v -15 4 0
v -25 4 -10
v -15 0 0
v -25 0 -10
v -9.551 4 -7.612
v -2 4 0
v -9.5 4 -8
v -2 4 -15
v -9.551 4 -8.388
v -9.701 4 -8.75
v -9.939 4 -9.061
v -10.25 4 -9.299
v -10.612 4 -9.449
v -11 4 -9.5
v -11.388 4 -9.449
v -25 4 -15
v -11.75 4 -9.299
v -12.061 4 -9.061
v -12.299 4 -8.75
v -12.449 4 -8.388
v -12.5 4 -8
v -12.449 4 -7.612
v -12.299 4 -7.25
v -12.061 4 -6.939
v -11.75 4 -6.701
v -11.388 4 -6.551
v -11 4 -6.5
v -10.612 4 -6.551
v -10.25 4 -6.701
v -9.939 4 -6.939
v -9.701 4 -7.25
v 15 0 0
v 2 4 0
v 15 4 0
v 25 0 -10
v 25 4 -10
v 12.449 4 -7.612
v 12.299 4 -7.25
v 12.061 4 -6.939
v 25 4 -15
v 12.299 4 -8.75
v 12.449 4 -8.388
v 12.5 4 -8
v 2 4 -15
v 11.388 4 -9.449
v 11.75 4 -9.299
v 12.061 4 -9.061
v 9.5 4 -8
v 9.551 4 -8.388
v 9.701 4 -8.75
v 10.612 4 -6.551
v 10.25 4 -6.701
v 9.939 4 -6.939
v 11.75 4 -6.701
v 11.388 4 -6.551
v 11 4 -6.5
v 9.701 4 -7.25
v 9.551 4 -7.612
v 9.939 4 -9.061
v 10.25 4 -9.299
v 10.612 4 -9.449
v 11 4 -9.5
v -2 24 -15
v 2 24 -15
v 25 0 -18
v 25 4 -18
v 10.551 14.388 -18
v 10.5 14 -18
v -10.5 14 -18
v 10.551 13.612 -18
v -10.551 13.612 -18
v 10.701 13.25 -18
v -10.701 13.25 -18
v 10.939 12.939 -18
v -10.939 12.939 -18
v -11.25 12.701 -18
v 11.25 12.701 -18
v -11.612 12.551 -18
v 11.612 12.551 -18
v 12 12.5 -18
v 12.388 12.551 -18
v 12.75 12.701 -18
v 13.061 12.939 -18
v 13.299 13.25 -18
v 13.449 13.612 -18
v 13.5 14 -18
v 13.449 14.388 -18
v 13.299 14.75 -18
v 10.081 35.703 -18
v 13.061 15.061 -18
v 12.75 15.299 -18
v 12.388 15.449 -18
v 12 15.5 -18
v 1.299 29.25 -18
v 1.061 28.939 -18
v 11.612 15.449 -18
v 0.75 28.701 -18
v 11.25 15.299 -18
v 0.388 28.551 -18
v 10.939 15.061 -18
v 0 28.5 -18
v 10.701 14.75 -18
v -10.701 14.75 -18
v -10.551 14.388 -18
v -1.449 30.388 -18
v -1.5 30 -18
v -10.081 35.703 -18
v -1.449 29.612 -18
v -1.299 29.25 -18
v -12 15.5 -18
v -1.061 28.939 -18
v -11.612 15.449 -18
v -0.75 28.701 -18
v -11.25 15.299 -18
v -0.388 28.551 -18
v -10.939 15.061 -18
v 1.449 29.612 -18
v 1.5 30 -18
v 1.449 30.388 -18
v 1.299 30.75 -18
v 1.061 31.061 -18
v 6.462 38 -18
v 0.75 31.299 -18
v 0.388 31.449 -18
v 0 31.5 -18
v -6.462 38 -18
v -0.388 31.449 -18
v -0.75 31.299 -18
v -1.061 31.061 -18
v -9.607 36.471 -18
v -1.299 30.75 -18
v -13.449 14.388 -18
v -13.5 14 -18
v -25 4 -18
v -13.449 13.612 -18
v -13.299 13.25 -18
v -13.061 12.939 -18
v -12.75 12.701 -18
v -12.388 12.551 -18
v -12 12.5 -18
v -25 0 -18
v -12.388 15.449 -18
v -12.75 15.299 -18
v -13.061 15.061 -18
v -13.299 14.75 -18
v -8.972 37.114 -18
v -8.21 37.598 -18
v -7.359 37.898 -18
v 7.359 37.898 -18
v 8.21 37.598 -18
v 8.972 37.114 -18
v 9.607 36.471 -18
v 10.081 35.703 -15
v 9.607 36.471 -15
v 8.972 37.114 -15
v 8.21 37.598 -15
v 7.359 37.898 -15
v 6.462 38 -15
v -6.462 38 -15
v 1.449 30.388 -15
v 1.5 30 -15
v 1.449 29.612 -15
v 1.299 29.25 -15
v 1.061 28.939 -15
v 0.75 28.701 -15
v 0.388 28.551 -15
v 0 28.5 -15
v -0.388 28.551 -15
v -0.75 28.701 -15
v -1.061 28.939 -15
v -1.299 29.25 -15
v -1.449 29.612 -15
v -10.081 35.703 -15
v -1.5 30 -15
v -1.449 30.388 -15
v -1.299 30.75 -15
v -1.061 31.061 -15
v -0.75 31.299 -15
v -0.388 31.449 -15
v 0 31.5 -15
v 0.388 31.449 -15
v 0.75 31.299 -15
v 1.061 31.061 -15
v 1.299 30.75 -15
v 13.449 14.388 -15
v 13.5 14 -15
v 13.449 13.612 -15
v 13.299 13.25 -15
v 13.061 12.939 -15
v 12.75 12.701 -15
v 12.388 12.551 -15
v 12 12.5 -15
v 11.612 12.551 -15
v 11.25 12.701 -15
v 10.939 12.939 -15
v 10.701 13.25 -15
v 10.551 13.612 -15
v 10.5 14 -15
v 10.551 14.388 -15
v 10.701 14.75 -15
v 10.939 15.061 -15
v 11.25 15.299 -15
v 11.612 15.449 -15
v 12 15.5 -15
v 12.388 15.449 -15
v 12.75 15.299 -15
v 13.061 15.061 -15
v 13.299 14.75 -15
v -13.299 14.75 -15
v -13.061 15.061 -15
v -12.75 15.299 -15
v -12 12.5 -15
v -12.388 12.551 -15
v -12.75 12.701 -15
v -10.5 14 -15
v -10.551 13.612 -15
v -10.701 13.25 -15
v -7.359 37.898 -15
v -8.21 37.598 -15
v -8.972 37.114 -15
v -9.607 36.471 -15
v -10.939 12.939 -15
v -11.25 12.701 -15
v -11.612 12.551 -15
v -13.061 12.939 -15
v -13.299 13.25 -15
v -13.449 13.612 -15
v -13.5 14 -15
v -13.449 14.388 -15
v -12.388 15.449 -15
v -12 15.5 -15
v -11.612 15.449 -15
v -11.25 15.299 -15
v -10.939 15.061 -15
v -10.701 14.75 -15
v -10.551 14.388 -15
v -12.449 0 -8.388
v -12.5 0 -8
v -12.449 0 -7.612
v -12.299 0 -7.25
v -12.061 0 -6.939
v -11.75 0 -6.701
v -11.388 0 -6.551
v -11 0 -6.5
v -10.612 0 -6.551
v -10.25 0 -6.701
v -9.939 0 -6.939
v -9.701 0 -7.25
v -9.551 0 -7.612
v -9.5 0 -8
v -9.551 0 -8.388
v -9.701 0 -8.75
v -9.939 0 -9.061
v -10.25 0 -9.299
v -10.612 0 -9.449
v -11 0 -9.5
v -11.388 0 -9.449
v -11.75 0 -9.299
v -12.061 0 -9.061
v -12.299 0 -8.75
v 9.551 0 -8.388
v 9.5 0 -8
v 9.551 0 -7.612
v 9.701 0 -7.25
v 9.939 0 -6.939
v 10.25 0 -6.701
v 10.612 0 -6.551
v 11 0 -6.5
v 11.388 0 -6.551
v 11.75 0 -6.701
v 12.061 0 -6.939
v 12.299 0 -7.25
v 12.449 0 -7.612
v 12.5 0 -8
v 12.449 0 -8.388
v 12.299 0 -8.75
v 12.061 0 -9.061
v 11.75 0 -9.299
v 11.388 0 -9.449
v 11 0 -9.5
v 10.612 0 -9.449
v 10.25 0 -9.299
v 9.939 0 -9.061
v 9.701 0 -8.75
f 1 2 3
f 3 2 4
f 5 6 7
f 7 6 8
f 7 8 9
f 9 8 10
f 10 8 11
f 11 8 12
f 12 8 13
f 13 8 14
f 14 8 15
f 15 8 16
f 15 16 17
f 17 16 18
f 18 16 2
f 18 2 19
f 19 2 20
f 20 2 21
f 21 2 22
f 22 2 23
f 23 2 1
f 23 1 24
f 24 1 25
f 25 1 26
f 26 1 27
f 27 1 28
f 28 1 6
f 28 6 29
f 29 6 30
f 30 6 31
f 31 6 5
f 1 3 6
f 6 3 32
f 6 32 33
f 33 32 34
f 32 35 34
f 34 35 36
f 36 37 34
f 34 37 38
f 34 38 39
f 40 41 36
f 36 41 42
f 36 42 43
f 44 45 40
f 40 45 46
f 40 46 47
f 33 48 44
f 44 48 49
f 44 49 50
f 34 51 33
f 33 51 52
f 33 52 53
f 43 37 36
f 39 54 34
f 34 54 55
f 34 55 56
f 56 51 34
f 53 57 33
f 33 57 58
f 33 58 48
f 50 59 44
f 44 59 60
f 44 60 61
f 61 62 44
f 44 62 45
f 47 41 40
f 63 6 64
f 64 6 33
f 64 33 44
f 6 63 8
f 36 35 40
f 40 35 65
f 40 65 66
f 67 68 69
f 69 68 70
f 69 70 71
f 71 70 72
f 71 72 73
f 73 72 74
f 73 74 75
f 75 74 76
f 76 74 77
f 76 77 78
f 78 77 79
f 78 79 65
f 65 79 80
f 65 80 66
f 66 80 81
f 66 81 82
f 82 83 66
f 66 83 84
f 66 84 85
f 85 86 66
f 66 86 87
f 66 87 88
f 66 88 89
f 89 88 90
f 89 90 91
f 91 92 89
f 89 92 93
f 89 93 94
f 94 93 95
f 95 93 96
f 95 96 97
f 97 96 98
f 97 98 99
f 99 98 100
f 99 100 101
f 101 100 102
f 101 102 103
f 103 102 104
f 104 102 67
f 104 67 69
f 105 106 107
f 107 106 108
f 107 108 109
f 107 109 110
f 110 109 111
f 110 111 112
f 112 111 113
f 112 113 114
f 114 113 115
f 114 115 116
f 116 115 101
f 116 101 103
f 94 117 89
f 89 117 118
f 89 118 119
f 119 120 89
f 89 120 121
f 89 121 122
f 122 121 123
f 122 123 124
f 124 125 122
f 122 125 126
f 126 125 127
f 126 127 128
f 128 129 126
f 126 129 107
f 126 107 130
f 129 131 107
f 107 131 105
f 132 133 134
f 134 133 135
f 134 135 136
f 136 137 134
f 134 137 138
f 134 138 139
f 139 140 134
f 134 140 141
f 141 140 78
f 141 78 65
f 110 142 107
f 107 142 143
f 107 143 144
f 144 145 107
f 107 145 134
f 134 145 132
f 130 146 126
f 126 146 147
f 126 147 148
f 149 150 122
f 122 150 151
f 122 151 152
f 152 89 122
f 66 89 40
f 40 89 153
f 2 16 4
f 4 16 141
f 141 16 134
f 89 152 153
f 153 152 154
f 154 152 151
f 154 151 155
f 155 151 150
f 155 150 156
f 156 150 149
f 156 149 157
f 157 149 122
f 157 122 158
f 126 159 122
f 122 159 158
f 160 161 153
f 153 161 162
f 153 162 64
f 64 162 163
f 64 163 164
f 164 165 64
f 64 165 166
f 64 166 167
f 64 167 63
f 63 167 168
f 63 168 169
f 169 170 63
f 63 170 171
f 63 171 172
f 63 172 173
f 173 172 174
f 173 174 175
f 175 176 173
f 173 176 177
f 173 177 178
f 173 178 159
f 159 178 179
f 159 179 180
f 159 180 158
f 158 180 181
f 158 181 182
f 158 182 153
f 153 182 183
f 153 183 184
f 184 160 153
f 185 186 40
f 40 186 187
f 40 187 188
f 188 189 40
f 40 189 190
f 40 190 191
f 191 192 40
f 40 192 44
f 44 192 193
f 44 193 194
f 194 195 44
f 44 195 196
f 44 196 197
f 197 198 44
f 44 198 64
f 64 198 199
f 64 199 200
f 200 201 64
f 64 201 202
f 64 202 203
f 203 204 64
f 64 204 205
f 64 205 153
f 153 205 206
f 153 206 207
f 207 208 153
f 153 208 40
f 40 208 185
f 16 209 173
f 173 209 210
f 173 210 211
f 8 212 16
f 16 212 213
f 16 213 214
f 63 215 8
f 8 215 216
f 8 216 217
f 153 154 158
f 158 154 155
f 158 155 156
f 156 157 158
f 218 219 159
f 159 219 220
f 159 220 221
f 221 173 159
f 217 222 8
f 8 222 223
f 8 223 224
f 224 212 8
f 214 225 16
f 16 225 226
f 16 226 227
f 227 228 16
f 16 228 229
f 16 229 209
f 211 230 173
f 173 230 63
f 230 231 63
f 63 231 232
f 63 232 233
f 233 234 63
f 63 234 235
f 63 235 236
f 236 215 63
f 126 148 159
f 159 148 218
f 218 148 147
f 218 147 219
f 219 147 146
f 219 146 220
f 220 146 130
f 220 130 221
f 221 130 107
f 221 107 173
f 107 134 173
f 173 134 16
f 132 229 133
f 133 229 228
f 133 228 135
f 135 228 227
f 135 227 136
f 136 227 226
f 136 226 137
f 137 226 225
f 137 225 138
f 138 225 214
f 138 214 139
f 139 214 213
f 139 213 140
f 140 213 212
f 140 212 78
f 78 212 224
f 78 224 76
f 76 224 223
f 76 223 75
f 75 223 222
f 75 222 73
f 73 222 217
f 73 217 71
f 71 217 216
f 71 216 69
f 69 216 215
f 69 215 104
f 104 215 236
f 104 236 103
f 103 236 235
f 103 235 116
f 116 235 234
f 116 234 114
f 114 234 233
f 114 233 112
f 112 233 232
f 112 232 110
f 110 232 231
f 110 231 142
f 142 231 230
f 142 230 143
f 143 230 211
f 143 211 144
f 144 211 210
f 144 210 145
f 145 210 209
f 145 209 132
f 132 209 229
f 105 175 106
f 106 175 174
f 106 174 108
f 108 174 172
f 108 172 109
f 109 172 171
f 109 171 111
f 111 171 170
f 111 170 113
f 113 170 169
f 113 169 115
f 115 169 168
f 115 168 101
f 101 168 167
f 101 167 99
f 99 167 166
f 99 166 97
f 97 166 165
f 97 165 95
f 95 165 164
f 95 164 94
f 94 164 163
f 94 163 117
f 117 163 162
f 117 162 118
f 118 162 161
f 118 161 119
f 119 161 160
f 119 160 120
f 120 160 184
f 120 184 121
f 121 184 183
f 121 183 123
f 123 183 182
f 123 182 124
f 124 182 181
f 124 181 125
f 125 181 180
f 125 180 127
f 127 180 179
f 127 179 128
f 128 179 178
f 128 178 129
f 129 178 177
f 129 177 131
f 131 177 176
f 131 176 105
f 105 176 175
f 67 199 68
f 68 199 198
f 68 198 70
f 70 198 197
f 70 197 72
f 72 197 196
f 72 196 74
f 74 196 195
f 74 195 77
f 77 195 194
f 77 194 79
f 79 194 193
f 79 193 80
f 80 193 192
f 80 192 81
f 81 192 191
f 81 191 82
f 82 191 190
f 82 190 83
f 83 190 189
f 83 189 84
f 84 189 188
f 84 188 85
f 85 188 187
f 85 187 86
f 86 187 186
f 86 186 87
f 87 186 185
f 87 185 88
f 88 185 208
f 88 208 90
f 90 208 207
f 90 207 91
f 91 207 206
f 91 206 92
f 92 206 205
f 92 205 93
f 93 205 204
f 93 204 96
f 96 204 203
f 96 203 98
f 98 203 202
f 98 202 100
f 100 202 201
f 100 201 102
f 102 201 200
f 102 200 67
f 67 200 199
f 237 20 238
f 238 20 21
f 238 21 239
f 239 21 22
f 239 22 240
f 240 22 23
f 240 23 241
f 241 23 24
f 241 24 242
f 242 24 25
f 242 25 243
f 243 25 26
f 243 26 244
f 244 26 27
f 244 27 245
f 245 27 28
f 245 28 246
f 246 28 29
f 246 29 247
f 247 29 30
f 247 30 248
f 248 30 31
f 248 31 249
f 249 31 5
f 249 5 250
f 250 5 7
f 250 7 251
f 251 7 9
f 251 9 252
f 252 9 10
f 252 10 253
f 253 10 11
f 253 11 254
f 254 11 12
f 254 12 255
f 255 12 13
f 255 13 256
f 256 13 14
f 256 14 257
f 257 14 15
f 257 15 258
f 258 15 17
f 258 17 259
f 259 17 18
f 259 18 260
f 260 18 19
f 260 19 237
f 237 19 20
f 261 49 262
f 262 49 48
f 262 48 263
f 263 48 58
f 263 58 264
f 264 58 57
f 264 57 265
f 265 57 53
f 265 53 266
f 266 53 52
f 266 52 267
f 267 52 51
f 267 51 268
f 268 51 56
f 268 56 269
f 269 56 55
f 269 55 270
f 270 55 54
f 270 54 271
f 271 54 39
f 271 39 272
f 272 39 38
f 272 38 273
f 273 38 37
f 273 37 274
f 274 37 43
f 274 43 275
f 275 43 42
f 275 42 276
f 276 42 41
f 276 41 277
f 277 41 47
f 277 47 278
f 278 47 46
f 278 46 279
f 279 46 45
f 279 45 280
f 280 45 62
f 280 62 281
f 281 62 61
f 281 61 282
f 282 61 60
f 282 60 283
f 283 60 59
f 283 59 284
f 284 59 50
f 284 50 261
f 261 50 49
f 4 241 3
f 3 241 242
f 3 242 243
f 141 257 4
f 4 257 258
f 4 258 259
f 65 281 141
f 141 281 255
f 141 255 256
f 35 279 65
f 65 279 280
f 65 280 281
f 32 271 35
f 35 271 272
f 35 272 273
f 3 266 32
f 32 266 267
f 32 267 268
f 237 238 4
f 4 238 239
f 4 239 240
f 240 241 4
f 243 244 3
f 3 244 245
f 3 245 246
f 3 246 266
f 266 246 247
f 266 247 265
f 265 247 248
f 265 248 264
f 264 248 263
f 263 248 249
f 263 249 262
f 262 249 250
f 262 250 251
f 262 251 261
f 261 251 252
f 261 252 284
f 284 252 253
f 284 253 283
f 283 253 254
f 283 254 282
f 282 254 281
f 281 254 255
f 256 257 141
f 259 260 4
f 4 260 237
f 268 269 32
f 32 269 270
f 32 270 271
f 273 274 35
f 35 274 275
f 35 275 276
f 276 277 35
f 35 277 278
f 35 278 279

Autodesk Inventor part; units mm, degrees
ref_plane "YZ Plane" through (0, 0, 0) normal (1, 0, 0) x (0, 1, 0)
ref_plane "XZ Plane" through (0, 0, 0) normal (0, 1, 0) x (-1, 0, 0)
ref_plane "XY Plane" through (0, 0, 0) normal (0, 0, 1) x (1, 0, 0)
sketch "Szkic1" plane through (0, 0, 0) normal (0, 1, 0) x (-1, 0, 0)
  line L0 (25, 19) -> (-25, 19)
  line L1 (-25, 19) -> (-25, -19)
  line L2 (-25, -19) -> (25, -19)
  line L3 (25, -19) -> (25, 19)
  line L4 (25, 19) -> (-25, -19) construction
  line L5 (-25, 19) -> (25, -19) construction
  point P0 (0, 0)
  dimension "d0" = 50
  dimension "d1" = 38
extrude "Wyciągnięcie proste1" add sketch "Szkic1" along normal blind 4
sketch "Szkic2" plane through (0, 4, 0) normal (0, 1, 0) x (1, 0, 0)
  line L0 (-25, 19) -> (-25, -19) projected
  line L1 (25, -19) -> (25, 19) projected
  line L2 (-25, 19) -> (25, 19)
  line L3 (25, 19) -> (25, 15)
  line L4 (25, 15) -> (-25, 15)
  line L5 (-25, 15) -> (-25, 19)
  point P0 (0, 0)
  dimension "d4" = 4
extrude "Wyciągnięcie proste2" add sketch "Szkic2" along normal blind 34
sketch "Szkic3" plane through (0, 4, 0) normal (0, 1, 0) x (1, 0, 0)
  line L0 (25, -19) -> (25, 19) projected
  line L1 (25, 0) -> (-25, 0) construction
  line L2 (-25, 19) -> (-25, -19) projected
  line L3 (-25, 15) -> (25, 15) projected
  line L4 (0, 15) -> (0, -19) construction
  line L5 (0, -15) -> (0, 19) construction
  point P0 (0, 0)
  point P1 (-11, 8)
  point P2 (-11, -8)
  point P3 (11, 8)
  point P4 (11, -8)
  dimension "d7" = 8
  dimension "d8" = 11
hole "Otwór1" at (-11, 4, -8) at (-11, 4, 8) at (11, 4, 8) at (11, 4, -8) direction (0, -1, 0) diameter 3 depth 8 tip angle 118
sketch "Szkic4" plane through (-25, 4, -15) normal (0, 0, 1) x (1, 0, 0)
  line L0 (50, 34) -> (0, 34) projected
  line L1 (0, 0) -> (0, 34) projected
  line L2 (50, 0) -> (0, 0) projected
  line L3 (25, 34) -> (25, 0) construction
  point P0 (25, -4)
  point P1 (25, 26)
  point P2 (13, 10)
  point P3 (37, 10)
  dimension "d16" = 8
  dimension "d17" = 25
  dimension "d18" = 13
  dimension "d19" = 10
hole "Otwór2" at (0, 30, -15) at (-12, 14, -15) at (12, 14, -15) direction (0, 0, -1) diameter 3 depth 8 tip angle 118
sketch "Szkic5" plane through (-25, 4, -15) normal (0, 0, 1) x (1, 0, 0)
  line L0 (0, 34) -> (50, 34) projected
  line L1 (50, 0) -> (50, 34) projected
  line L2 (50, 0) -> (0, 0) projected
  line L3 (34, 34) -> (50, 0)
  line L4 (34, 34) -> (50, 34)
  line L5 (50, 34) -> (50, 0)
  line L6 (25, 34) -> (25, 0) construction
  line L7 (50, 34) -> (0, 34)
  line L8 (0, 0) -> (0, 34)
  line L9 (0, 0) -> (50, 0)
  line L10 (16, 34) -> (0, 0)
  line L11 (16, 34) -> (0, 34)
  line L12 (0, 34) -> (0, 0)
  point P0 (25, -4)
  dimension "d27" = 16
extrude "Wyciągnięcie proste3" cut sketch "Szkic5" against normal blind 34 contours L0 L10 L8 | L0 L1 L3
fillet "Zaokrąglenie1" radius 4 2 edges at (-9, 38, -17) (9, 38, -17)
sketch "Szkic9" plane through (25, 0, 19) normal (1, 0, 0) x (0, 0, -1)
  line L0 (38, 0) -> (0, 0) projected
  line L1 (38, 0) -> (37, 0)
  line L2 (37, 0) -> (37, 38)
  line L3 (37, 38) -> (38, 38)
  line L4 (38, 38) -> (38, 0)
  point P0 (19, 0)
  dimension "d38" = 1
  dimension "d39" = 38
extrude "Wyciągnięcie proste6" cut sketch "Szkic9" against normal through all
sketch "Szkic10" plane through (0, 0, 0) normal (0, -1, 0) x (1, 0, 0)
  line L0 (25, 19) -> (25, -15) projected
  line L1 (-25, -15) -> (-25, 19) projected
  line L2 (25, 19) -> (-25, 19)
  line L3 (-25, 19) -> (-25, 0)
  line L4 (-25, 0) -> (25, 0)
  line L5 (25, 0) -> (25, 19)
  point P0 (0, 0)
  dimension "d42" = 19
extrude "Wyciągnięcie proste7" cut sketch "Szkic10" against normal blind 10
sketch "Szkic11" plane through (0, 4, 0) normal (0, 1, 0) x (1, 0, 0)
  line L0 (25, 0) -> (-25, 0) projected
  line L1 (-6.4616, 15) -> (6.4616, 15) projected
  line L2 (2, 0) -> (-2, 0)
  line L3 (-2, 0) -> (-2, 15)
  line L4 (-2, 15) -> (2, 15)
  line L5 (2, 15) -> (2, 0)
  point P0 (0, 0)
  dimension "d45" = 4
  dimension "d46" = 2
extrude "Wyciągnięcie proste8" add sketch "Szkic11" along normal blind 20
sketch "Szkic12" plane through (2, 4, 0) normal (1, 0, 0) x (0, 0, -1)
  line L0 (15, 20) -> (15, 0) projected
  line L1 (15, 20) -> (0, 0)
  line L2 (0, 0) -> (0, 20) projected
  line L3 (0, 0) -> (0, 20)
  line L4 (15, 20) -> (0, 20) projected
  line L5 (0, 20) -> (15, 20)
  point P0 (0, -4)
extrude "Wyciągnięcie proste9" cut sketch "Szkic12" against normal blind 20
chamfer "Faza1" distance 10 angle 45 2 edges at (25, 2, 0) (-25, 2, 0)
properties part number "Wspornik_góra" material "Tworzywo sztuczne PET"
